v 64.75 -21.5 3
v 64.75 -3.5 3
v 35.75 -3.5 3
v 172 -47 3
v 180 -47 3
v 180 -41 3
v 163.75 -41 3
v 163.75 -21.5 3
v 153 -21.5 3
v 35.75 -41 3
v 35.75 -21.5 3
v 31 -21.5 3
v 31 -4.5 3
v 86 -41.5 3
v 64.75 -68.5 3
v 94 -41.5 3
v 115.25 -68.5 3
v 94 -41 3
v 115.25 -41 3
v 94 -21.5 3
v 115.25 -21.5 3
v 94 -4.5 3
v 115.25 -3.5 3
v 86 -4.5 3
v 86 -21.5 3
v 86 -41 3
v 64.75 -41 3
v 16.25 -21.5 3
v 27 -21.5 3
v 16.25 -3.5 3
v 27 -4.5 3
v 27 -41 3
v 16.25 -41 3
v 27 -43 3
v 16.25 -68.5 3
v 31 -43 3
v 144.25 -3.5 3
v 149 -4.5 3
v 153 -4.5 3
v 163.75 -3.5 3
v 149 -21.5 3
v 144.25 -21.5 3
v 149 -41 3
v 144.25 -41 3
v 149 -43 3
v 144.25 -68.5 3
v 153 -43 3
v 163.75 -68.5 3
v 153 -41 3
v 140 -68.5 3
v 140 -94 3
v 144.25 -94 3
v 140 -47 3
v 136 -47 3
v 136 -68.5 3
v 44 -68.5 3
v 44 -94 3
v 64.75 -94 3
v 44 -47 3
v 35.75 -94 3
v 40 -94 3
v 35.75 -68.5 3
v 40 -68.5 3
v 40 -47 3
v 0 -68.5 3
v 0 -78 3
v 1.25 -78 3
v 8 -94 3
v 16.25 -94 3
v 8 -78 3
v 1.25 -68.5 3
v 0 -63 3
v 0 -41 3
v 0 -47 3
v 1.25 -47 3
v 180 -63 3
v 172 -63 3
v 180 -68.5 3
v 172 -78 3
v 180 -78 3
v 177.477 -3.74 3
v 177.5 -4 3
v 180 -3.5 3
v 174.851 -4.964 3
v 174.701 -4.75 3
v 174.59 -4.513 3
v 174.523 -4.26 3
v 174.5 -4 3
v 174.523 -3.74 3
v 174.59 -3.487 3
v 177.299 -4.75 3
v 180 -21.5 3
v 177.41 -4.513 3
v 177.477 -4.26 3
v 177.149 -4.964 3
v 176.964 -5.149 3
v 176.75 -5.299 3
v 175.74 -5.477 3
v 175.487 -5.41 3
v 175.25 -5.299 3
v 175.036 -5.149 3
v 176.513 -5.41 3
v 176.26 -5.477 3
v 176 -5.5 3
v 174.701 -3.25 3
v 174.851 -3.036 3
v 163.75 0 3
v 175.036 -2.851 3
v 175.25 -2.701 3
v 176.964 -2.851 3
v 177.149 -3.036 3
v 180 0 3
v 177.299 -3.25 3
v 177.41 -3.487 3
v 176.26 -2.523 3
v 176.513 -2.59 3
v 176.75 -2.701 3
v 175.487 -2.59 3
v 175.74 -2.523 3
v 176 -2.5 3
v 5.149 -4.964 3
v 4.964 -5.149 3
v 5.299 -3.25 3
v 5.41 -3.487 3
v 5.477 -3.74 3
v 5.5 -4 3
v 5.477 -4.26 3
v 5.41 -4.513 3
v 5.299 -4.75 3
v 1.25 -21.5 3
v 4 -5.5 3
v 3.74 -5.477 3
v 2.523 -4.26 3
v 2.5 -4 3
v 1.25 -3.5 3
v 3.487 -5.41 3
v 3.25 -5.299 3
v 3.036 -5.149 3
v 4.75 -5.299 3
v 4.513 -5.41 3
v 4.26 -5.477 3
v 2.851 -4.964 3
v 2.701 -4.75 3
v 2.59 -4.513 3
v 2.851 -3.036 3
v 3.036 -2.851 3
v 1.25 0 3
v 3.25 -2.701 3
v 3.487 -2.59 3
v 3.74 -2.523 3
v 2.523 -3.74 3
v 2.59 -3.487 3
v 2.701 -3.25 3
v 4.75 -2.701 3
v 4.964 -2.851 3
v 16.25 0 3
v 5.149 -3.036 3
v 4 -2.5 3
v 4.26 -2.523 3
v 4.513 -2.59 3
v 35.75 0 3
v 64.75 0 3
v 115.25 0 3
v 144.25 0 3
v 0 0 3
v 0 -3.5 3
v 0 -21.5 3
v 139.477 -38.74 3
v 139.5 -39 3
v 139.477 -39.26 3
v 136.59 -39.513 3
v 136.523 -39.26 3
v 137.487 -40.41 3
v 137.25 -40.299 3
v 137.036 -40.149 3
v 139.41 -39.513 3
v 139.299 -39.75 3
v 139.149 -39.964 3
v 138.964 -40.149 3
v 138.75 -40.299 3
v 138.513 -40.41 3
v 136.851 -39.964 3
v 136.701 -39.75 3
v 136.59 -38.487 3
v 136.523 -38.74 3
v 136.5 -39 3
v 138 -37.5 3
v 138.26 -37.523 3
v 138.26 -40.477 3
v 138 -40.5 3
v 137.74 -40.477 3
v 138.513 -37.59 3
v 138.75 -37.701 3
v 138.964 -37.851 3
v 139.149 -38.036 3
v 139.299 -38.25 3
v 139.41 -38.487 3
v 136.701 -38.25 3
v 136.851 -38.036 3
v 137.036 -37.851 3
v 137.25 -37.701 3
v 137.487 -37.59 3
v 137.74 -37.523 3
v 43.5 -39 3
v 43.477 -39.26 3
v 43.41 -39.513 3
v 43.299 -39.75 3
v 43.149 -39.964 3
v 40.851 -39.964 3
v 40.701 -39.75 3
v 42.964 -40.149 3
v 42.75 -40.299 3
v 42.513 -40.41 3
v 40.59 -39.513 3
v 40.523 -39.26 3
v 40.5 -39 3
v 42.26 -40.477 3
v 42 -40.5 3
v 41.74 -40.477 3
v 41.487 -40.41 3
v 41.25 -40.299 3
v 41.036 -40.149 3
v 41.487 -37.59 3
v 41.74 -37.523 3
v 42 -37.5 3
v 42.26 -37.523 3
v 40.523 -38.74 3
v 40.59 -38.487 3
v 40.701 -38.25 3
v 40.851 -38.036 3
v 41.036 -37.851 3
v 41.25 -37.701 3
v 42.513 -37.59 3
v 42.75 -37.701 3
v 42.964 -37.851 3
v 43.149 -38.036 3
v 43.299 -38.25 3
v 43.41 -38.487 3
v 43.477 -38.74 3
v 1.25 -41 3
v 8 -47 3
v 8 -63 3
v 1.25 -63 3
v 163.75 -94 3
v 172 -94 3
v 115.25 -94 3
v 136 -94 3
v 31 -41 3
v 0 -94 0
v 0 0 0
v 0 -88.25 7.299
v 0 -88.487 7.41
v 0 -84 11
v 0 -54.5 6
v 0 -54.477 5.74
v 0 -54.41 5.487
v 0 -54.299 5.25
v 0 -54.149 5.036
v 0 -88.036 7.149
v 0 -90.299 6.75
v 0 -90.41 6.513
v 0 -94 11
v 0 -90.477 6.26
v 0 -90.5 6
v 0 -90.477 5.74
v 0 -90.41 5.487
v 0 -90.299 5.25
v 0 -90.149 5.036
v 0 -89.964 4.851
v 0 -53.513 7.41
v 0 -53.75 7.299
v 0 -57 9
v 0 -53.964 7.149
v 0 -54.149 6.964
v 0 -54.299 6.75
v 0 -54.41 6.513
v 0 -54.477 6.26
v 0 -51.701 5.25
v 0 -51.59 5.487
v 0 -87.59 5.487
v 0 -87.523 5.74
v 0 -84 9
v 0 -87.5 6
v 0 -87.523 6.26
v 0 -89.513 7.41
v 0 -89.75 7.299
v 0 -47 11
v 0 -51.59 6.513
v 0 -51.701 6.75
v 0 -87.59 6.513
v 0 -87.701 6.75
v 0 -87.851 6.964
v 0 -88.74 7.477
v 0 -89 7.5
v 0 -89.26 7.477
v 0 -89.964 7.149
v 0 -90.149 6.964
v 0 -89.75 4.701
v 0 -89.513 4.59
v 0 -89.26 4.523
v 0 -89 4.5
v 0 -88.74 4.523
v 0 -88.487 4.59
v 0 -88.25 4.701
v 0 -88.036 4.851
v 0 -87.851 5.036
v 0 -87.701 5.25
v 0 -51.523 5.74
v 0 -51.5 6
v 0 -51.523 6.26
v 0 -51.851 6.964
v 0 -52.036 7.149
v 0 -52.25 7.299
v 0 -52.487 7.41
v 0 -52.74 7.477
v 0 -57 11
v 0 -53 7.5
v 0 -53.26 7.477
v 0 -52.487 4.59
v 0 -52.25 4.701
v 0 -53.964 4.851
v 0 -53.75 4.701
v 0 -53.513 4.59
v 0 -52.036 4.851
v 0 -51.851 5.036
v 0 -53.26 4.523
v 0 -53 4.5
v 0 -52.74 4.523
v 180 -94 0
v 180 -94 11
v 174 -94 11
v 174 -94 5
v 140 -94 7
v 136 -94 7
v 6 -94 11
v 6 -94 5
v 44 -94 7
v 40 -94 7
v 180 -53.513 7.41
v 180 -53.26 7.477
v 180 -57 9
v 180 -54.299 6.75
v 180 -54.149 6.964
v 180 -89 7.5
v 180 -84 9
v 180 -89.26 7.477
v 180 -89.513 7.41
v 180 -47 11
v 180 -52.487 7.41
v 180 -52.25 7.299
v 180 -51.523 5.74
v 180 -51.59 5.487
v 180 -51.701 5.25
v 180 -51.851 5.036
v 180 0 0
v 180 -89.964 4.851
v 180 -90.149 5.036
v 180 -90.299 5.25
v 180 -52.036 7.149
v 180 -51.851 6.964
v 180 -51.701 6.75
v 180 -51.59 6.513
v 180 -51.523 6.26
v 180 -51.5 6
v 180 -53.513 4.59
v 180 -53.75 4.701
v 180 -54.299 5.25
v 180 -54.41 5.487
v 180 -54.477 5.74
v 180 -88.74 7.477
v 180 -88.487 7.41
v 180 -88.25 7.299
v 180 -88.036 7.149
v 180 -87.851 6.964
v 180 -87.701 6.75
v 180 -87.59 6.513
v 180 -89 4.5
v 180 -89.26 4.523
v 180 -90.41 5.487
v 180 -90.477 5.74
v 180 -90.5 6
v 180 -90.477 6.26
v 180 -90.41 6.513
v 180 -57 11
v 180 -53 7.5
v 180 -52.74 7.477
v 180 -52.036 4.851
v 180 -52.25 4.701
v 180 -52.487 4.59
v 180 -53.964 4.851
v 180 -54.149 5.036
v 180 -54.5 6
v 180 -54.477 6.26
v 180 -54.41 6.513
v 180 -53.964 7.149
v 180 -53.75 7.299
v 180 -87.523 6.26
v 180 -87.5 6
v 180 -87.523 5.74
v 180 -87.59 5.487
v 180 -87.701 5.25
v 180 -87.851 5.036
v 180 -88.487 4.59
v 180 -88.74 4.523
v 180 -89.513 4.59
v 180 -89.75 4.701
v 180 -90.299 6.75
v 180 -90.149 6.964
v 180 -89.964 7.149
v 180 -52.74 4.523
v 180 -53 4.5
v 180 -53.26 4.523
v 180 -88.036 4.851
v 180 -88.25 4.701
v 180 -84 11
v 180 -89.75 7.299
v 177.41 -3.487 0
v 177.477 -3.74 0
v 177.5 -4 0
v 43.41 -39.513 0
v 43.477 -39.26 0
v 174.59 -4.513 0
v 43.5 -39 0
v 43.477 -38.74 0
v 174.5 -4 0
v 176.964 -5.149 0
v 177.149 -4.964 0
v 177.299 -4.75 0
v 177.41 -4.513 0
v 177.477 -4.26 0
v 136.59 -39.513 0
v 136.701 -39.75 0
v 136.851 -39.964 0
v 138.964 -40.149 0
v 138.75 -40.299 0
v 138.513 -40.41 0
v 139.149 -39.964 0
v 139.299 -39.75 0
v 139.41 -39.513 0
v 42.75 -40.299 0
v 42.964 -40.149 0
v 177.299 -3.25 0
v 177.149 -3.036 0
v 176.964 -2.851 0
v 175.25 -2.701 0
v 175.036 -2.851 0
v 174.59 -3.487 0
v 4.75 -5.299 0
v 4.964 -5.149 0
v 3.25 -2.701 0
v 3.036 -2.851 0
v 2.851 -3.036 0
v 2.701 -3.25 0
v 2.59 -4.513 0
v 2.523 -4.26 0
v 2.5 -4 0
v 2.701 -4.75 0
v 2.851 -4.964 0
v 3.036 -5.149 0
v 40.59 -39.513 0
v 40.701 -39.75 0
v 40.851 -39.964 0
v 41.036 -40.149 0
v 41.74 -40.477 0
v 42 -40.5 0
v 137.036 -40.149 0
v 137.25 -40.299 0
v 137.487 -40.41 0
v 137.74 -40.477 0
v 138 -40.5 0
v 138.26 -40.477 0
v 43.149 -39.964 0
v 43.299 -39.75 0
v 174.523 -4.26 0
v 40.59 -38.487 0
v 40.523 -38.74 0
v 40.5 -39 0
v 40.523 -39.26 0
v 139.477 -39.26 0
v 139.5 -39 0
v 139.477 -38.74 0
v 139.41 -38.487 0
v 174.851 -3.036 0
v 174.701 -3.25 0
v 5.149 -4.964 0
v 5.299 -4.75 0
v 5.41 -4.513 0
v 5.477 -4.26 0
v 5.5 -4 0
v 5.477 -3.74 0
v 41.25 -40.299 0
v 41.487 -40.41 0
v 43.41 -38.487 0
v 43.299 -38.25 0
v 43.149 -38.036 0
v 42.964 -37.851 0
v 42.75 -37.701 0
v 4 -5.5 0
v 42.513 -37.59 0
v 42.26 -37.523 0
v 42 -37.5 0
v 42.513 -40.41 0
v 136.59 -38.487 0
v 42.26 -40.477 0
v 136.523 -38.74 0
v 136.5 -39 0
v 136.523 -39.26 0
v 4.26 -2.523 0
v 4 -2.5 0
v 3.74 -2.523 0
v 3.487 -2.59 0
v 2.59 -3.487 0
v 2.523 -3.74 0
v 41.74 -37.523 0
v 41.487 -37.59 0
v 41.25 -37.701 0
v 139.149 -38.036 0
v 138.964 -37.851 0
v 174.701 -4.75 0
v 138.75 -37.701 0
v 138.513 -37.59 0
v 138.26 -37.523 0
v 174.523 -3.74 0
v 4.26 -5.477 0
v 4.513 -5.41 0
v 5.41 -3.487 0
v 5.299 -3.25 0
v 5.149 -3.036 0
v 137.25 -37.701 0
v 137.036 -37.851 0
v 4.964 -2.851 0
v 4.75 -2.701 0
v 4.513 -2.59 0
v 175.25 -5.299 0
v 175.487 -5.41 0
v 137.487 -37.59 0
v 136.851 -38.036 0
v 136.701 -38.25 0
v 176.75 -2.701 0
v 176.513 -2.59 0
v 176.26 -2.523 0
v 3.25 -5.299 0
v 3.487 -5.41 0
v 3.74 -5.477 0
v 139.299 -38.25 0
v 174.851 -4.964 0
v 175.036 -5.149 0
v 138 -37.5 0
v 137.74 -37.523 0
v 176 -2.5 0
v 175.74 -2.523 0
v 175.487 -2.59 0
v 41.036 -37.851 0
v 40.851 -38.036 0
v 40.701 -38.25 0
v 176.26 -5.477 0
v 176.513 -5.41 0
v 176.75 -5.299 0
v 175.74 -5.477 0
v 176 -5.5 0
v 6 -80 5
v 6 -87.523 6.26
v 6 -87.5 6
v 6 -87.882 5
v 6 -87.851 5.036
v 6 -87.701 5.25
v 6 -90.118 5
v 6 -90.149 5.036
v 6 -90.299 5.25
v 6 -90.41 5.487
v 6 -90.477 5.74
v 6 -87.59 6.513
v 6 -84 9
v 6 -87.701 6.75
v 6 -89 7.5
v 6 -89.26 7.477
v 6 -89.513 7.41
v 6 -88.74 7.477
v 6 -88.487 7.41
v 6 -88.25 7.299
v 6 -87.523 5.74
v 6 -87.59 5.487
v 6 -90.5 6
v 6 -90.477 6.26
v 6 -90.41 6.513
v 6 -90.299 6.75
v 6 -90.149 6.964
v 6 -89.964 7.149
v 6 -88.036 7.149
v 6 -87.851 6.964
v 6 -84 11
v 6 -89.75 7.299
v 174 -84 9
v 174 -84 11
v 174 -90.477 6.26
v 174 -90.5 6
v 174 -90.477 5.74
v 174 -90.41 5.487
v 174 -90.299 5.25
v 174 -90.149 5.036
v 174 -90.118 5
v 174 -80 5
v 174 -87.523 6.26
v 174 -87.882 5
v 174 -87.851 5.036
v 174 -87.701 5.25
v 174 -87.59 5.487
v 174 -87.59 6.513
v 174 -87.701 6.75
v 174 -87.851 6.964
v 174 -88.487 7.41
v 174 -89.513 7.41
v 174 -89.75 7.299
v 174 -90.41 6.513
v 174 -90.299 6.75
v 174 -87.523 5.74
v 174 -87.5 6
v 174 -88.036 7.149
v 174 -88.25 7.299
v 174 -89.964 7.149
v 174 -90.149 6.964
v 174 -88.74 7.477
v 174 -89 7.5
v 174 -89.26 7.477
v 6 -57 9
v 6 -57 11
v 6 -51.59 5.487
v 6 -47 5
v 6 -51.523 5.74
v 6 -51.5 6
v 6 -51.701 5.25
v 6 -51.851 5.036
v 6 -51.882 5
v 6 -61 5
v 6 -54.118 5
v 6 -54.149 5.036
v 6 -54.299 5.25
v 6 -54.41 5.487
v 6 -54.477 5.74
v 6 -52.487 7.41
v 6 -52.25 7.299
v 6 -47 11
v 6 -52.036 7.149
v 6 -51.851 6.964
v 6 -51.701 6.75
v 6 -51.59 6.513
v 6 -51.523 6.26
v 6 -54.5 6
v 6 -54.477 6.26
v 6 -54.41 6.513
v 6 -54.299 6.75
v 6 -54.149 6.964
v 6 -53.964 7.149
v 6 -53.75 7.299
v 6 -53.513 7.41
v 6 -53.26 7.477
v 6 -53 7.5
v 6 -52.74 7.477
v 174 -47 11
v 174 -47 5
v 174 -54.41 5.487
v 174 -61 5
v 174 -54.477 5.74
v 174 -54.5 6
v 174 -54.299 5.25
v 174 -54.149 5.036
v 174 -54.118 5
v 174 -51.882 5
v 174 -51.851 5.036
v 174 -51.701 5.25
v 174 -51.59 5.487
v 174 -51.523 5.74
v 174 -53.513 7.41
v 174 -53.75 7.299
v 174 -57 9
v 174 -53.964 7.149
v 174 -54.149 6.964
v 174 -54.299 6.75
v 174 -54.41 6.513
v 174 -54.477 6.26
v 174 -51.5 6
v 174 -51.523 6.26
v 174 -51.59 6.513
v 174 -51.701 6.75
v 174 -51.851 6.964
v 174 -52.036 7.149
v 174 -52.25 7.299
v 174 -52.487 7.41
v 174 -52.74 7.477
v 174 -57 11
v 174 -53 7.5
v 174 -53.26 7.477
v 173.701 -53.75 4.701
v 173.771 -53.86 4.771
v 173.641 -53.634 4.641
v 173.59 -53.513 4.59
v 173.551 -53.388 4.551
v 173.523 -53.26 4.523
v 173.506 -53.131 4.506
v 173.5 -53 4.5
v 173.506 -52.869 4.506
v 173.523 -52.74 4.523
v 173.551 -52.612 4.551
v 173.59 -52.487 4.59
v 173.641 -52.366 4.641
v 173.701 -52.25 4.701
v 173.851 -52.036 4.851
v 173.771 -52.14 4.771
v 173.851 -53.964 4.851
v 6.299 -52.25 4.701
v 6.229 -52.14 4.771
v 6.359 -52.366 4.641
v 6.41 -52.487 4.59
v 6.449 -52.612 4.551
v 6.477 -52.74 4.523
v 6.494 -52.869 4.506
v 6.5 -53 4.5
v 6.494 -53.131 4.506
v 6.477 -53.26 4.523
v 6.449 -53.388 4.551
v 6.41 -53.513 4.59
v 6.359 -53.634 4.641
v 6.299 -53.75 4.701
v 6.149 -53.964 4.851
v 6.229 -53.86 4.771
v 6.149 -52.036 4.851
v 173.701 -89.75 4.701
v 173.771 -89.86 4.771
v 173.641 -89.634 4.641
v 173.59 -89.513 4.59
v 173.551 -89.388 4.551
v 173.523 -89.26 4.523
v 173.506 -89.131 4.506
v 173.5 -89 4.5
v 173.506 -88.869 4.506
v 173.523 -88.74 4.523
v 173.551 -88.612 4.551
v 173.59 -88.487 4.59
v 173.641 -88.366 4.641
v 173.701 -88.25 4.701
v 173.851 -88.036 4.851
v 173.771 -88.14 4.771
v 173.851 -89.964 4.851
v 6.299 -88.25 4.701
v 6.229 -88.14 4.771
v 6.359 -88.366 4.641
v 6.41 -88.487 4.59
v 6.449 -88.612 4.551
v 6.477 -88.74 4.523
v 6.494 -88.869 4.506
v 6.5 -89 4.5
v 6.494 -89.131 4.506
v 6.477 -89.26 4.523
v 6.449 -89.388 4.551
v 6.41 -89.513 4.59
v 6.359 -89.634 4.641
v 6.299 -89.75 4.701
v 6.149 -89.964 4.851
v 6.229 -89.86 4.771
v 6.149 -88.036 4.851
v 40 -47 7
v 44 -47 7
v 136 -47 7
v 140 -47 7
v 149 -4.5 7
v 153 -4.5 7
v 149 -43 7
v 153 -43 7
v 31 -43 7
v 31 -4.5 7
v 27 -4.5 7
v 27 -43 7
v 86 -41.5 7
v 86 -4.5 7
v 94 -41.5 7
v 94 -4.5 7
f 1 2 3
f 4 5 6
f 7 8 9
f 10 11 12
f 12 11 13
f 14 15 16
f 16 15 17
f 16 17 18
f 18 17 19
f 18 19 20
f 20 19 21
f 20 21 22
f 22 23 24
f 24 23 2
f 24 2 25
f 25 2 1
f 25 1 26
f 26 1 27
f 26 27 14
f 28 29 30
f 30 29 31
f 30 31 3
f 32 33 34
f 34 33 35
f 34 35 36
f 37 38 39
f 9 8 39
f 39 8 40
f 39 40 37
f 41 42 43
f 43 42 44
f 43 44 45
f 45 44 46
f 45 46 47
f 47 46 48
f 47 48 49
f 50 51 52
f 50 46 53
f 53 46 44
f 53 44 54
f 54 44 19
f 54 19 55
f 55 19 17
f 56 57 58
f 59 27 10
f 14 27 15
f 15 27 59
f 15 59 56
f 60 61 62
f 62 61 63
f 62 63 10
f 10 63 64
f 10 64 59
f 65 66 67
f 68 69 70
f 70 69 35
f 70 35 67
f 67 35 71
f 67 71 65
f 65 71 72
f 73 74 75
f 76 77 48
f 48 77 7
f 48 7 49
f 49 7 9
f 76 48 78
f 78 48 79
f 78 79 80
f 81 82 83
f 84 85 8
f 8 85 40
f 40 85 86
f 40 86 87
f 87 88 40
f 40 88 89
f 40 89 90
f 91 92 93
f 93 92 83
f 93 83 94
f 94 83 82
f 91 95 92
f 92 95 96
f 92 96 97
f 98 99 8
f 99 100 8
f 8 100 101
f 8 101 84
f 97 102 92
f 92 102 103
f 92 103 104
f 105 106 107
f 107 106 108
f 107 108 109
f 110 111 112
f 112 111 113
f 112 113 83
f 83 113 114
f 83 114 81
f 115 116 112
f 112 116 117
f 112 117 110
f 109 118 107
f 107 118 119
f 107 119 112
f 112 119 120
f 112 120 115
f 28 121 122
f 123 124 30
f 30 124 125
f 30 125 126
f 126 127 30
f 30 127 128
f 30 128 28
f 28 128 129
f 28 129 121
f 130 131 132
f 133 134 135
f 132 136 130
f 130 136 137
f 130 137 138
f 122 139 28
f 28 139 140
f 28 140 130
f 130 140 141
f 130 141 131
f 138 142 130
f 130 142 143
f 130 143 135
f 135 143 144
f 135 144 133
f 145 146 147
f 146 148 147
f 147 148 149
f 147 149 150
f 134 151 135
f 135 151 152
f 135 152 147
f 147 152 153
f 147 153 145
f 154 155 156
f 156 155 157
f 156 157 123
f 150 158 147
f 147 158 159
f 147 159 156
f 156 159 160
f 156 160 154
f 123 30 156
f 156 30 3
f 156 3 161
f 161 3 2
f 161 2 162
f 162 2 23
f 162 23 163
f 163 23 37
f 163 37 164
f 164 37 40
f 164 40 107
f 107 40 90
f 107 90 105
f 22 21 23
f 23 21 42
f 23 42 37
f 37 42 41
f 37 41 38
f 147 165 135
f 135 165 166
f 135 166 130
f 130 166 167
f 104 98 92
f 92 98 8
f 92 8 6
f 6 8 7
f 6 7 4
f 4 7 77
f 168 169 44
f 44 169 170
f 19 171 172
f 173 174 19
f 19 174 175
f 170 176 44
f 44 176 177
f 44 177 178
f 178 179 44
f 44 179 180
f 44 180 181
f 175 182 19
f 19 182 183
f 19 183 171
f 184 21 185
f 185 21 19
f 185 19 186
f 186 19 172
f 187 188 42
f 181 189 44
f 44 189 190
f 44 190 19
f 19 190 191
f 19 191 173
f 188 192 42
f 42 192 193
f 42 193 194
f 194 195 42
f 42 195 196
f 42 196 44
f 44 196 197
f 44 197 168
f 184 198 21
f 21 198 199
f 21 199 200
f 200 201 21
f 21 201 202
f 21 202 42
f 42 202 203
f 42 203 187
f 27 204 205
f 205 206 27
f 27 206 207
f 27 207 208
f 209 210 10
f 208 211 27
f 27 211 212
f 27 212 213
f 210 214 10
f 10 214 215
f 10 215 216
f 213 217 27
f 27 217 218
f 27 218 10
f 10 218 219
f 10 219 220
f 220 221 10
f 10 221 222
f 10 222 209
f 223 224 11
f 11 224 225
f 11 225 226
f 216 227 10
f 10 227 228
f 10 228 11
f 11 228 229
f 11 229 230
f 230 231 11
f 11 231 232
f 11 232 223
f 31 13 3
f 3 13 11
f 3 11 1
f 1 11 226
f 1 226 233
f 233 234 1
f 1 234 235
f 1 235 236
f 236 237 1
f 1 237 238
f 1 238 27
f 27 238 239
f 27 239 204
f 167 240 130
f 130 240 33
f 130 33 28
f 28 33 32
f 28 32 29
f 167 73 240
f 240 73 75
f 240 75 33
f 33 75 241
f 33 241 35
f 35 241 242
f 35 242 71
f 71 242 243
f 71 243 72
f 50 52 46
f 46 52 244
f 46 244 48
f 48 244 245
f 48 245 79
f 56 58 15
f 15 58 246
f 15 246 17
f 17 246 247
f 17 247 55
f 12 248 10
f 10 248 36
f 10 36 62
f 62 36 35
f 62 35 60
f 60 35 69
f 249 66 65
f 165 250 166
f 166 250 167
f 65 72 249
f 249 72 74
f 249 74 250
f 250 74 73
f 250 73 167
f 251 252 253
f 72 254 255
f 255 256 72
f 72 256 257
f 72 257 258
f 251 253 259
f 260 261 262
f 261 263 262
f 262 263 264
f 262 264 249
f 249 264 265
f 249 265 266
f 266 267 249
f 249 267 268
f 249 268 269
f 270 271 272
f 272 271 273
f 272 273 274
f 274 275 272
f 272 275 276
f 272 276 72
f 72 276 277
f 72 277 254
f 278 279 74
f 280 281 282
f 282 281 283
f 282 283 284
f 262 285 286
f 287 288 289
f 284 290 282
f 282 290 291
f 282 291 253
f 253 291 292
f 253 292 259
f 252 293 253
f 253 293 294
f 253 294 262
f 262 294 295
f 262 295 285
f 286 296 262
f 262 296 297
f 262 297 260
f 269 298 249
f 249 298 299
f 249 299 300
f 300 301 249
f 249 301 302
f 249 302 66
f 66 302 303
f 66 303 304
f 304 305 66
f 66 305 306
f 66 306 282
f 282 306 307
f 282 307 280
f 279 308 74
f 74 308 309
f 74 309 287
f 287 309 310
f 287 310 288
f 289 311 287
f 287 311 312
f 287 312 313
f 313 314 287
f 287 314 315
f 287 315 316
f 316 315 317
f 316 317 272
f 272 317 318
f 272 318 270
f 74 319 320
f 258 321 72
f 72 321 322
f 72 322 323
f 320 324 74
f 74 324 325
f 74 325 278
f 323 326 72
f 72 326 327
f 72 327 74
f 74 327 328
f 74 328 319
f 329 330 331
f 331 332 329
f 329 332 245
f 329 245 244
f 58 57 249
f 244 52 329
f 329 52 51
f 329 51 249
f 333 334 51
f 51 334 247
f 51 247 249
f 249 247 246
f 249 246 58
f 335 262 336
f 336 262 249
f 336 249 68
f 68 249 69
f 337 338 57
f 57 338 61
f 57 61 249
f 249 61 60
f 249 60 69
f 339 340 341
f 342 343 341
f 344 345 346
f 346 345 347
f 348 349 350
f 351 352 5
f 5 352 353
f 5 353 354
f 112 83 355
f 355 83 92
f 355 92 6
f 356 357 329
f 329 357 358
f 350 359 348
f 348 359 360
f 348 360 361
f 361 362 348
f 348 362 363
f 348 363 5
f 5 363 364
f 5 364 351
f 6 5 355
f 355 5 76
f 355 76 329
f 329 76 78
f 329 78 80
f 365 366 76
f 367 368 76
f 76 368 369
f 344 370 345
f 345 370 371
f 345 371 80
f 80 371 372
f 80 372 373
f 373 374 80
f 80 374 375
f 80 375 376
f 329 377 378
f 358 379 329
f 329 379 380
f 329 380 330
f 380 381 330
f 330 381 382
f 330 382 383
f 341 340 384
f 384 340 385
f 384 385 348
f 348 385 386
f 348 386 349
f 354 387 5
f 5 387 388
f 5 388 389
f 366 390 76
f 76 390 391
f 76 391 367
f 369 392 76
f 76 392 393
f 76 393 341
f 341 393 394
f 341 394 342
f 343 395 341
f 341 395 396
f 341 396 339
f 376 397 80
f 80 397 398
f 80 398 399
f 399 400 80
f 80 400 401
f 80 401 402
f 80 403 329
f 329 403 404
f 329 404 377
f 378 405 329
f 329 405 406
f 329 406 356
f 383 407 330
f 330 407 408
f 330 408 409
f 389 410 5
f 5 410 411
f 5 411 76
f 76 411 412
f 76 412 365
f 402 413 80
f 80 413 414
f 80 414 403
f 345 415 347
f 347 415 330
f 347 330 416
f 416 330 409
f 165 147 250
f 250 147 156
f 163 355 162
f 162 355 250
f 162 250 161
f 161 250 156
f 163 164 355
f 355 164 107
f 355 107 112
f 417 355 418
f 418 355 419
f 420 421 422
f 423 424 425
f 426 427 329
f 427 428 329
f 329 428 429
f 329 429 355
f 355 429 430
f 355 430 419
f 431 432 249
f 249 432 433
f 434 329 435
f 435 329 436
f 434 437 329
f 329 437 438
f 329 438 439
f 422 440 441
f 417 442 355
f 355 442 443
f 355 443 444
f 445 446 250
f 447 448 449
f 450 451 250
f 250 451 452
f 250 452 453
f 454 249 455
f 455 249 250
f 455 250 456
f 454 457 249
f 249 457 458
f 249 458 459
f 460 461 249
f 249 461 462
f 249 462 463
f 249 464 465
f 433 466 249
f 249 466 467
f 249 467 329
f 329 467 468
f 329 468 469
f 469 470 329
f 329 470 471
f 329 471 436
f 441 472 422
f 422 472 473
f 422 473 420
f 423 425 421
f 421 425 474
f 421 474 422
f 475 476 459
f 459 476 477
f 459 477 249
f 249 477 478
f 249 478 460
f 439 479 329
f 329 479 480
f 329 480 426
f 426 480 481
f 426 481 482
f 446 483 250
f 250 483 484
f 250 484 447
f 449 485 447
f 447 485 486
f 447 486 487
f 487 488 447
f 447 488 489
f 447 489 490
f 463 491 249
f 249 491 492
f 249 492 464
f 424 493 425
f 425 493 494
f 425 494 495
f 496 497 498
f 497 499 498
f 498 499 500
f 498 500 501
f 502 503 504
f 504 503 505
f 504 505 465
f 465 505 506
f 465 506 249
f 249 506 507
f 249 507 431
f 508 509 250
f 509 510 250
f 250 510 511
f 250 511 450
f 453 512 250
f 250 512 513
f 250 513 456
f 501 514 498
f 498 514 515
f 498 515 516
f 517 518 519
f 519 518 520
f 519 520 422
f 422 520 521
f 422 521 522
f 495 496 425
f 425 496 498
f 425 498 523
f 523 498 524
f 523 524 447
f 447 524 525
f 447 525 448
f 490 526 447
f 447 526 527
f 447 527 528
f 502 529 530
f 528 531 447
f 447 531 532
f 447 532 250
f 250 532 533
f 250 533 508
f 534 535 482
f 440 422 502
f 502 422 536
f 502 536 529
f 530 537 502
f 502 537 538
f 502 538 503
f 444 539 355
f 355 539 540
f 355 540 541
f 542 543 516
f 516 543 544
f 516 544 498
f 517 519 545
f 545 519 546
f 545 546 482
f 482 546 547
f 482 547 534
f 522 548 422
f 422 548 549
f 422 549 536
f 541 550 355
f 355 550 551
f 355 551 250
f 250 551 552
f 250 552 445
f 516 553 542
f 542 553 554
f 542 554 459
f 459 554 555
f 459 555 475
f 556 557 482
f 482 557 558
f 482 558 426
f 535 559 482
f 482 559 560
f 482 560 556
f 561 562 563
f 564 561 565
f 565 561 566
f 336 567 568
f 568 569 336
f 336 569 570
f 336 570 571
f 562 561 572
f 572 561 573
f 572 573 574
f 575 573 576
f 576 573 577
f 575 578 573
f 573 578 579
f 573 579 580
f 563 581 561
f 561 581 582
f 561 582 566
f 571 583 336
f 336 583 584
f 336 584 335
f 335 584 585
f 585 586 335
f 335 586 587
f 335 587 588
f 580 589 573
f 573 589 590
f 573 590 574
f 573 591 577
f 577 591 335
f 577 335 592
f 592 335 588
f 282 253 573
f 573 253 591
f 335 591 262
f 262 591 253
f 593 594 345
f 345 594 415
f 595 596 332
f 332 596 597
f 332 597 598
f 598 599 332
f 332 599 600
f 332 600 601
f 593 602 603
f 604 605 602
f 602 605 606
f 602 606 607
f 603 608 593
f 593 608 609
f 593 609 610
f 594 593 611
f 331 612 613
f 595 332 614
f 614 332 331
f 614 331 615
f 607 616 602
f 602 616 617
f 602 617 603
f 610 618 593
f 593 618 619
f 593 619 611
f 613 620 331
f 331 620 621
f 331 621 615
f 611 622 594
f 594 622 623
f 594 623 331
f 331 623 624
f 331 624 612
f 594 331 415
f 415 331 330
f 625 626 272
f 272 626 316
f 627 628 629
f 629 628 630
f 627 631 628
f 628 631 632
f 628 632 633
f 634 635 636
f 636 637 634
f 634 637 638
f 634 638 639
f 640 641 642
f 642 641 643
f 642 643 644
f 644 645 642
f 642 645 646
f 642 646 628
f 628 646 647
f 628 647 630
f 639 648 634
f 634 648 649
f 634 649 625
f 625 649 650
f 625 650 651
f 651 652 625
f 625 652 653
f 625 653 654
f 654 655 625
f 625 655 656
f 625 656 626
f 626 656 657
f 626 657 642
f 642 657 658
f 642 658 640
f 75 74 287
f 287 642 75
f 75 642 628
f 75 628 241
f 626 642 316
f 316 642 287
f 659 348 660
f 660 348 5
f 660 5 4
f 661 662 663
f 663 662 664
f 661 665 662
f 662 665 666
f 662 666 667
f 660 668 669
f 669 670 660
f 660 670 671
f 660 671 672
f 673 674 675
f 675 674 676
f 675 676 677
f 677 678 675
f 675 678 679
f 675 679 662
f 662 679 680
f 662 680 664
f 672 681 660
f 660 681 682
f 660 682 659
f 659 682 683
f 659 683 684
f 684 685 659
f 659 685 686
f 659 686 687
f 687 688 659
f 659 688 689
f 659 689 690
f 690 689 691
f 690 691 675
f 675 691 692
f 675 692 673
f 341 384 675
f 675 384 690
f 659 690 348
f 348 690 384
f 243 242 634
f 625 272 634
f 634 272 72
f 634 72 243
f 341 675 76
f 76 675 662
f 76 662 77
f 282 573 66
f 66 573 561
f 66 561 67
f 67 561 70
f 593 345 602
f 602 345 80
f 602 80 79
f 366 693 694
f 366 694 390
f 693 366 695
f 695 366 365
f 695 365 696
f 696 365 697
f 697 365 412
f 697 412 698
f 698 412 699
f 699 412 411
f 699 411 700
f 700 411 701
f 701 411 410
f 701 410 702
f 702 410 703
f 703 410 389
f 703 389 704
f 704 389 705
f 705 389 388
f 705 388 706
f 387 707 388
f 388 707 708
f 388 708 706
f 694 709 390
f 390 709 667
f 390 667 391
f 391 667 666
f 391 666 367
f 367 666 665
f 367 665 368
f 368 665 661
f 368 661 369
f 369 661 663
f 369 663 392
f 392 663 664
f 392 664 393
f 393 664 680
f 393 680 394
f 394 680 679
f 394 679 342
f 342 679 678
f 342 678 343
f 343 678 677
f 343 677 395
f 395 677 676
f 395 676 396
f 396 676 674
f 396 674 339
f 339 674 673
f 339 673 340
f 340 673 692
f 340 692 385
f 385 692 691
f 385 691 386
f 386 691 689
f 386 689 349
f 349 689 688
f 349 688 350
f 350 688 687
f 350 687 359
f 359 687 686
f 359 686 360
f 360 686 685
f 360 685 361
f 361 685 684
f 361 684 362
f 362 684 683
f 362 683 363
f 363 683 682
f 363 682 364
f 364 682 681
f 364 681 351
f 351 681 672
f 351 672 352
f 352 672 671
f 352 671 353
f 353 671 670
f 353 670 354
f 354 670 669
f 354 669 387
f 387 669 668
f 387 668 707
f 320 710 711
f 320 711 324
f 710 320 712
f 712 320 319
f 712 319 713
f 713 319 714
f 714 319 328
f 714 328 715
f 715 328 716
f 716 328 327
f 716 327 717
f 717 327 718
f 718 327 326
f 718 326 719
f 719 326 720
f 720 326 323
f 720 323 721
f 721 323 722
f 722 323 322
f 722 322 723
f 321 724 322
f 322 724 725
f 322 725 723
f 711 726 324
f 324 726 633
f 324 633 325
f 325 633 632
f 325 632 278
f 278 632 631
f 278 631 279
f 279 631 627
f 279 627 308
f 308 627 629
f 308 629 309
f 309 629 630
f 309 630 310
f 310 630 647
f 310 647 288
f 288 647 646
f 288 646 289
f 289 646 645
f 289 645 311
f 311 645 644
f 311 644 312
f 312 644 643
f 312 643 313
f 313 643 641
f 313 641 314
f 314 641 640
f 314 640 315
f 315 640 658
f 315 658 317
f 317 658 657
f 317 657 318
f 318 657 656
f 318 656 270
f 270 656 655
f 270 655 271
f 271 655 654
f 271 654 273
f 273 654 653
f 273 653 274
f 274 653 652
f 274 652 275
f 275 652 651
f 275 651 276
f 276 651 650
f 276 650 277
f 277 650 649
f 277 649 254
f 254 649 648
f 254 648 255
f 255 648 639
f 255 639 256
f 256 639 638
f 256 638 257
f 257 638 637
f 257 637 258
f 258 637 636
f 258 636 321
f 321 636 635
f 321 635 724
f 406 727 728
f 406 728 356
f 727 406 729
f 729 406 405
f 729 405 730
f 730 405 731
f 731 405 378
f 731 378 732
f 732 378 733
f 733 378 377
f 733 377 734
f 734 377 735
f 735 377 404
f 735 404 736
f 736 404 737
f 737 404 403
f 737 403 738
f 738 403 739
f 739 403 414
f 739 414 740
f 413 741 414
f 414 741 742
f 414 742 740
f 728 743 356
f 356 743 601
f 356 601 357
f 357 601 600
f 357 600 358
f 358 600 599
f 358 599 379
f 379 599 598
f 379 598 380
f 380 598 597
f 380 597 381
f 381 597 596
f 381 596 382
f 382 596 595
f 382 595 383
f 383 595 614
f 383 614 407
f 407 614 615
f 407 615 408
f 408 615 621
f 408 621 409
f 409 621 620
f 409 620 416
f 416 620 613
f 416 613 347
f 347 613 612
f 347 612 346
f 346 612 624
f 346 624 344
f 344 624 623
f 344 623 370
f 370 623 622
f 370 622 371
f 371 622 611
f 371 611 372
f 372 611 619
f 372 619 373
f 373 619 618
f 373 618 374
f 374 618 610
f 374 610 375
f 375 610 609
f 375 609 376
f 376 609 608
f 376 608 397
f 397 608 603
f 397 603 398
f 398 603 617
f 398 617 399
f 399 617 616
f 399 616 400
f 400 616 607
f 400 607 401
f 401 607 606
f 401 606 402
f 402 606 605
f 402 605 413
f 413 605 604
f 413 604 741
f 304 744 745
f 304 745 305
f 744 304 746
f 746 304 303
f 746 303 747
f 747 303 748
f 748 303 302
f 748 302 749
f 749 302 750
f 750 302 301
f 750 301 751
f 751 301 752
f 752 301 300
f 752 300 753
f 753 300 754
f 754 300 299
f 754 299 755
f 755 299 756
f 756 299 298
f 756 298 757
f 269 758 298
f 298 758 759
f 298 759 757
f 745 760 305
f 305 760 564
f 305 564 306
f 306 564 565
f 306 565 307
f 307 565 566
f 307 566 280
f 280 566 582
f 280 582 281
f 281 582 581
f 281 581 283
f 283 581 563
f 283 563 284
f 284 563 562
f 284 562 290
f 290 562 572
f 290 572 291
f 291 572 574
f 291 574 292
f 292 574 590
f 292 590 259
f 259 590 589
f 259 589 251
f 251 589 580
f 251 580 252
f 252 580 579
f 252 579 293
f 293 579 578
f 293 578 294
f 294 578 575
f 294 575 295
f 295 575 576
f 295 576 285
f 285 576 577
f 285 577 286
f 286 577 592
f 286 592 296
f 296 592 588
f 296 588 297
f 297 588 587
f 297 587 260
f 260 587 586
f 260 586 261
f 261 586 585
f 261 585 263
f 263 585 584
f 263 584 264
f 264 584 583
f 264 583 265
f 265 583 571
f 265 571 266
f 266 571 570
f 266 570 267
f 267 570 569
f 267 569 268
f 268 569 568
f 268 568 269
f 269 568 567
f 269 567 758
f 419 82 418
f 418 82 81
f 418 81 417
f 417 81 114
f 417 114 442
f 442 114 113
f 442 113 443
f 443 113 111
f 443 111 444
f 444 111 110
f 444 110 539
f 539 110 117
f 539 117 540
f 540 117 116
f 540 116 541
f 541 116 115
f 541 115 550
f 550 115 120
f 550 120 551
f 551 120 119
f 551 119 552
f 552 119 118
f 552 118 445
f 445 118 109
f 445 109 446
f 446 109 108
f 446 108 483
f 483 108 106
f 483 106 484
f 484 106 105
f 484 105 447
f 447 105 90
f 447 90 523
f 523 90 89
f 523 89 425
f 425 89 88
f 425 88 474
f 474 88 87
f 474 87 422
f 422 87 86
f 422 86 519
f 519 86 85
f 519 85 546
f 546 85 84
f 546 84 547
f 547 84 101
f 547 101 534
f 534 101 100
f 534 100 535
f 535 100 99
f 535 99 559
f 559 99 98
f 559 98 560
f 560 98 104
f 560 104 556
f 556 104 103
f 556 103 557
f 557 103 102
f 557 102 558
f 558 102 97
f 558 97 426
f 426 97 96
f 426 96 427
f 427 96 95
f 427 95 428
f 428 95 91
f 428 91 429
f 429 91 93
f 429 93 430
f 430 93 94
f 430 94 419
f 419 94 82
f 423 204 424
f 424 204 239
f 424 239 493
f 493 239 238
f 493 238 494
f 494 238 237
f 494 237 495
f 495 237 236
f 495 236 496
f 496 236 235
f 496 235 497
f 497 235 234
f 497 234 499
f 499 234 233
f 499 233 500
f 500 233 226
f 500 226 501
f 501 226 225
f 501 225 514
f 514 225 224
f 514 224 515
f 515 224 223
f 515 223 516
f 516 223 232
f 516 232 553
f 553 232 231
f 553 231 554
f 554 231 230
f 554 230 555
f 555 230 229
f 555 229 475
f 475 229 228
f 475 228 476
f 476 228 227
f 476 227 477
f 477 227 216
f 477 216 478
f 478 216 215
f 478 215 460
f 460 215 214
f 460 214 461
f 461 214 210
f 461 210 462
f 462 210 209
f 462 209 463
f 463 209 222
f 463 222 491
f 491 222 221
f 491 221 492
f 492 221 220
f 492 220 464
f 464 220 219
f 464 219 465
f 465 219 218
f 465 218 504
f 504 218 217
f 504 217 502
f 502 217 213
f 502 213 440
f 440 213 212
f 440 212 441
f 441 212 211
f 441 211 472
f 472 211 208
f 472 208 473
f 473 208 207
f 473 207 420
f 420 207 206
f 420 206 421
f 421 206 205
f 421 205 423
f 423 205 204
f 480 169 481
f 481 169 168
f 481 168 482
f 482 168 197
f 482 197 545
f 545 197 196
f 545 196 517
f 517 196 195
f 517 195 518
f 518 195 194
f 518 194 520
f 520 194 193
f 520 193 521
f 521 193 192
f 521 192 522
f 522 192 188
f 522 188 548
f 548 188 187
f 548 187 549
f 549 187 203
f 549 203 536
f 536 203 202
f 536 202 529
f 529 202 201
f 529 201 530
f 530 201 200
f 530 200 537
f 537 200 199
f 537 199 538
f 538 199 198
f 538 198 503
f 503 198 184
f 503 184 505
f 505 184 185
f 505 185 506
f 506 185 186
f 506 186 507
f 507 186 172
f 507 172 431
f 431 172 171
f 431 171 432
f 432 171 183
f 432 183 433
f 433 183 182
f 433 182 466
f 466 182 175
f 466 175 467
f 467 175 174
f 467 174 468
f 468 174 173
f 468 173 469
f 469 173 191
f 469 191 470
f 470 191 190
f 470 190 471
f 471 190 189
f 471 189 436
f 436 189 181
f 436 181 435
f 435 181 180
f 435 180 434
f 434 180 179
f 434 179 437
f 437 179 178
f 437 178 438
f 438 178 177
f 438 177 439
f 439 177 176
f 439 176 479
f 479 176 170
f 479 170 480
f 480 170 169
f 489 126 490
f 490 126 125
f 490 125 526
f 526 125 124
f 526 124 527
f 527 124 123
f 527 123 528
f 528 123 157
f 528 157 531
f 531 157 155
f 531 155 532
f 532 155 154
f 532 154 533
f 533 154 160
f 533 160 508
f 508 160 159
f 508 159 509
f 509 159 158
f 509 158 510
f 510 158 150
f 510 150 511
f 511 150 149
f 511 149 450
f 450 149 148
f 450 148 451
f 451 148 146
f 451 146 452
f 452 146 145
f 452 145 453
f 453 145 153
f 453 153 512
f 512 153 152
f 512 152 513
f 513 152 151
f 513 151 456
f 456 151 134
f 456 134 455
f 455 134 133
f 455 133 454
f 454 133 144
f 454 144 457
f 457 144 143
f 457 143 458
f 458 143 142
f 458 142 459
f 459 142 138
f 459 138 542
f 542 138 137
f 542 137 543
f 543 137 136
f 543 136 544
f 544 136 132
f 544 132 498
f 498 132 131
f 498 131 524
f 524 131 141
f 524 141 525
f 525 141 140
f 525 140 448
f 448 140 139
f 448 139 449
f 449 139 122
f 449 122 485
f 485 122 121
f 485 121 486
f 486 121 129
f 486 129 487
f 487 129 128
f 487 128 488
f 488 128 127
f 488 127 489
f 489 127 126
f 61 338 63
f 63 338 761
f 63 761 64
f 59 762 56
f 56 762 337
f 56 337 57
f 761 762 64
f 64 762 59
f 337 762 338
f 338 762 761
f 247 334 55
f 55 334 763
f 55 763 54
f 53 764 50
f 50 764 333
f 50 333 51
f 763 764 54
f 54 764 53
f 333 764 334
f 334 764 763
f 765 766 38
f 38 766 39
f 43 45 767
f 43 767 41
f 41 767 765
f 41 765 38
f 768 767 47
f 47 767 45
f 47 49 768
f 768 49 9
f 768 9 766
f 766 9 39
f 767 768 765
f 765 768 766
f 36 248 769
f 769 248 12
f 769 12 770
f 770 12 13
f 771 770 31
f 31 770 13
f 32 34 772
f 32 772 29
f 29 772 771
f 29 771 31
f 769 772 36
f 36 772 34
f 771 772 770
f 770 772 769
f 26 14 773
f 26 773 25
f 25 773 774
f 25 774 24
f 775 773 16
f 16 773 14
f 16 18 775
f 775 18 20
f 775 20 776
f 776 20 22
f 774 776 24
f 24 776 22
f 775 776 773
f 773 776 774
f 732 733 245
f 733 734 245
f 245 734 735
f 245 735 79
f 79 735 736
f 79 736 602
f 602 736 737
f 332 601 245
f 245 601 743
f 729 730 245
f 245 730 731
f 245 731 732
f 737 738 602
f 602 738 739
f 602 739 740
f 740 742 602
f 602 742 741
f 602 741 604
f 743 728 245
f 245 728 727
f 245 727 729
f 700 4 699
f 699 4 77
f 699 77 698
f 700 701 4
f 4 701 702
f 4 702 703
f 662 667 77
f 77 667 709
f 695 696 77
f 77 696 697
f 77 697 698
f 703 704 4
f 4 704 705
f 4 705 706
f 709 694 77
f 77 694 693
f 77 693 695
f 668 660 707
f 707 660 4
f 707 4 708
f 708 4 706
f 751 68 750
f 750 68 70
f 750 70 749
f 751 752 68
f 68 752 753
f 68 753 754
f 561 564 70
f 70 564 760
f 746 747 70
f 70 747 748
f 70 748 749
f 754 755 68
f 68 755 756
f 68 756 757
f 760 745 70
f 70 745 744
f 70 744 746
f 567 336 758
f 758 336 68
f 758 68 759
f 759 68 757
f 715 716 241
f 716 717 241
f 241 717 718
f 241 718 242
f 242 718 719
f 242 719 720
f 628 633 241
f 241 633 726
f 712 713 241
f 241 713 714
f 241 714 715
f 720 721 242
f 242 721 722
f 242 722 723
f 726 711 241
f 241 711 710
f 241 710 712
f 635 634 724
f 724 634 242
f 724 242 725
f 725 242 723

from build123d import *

# Parameters (mm, degrees)
SKETCH_1_W          = 180
SKETCH_1_H          = 94
EXTRUDE_1_DEPTH     = 3
SKETCH_2_W          = 6
SKETCH_2_H          = 10
EXTRUDE_2_DEPTH     = 8
CHAMFER_2_SIZE      = 6
CHAMFER_1_SIZE      = 6
SKETCH_3_R          = 1.5
CUT_EXTRUDE_1_DEPTH = 204.364205307
SKETCH_4_R          = 1.5
CUT_EXTRUDE_2_DEPTH = 204.224014329
SKETCH_5_W          = 4
SKETCH_5_H          = 47
SKETCH_5_H_2        = 38.5
SKETCH_5_W_2        = 8
SKETCH_5_H_3        = 37
EXTRUDE_3_DEPTH     = 4
CHAMFER_3_SIZE      = 2


with BuildPart() as part:
    # Эскиз1 → Бобышка-Вытянуть1 (new body)
    with BuildSketch(Plane.XY):
        with Locations((90, -47)):
            Rectangle(SKETCH_1_W, SKETCH_1_H)
    extrude(amount=EXTRUDE_1_DEPTH)

    # Эскиз2 → Бобышка-Вытянуть2 (add)
    with BuildSketch(Plane.XY.offset(3)):
        with Locations((3, -89)):
            Rectangle(SKETCH_2_W, SKETCH_2_H)
        with Locations((177, -89)):
            Rectangle(SKETCH_2_W, SKETCH_2_H)
        with Locations((3, -52)):
            Rectangle(SKETCH_2_W, SKETCH_2_H)
        with Locations((177, -52)):
            Rectangle(SKETCH_2_W, SKETCH_2_H)
    extrude(amount=EXTRUDE_2_DEPTH)

    # Фаска2
    chamfer_2_edges = [part.edges().sort_by_distance(p)[0] for p in [
        (3, -57, 3),
        (177, -57, 3),
    ]]
    chamfer(chamfer_2_edges, length=CHAMFER_2_SIZE)

    # Фаска1
    chamfer_1_edges = [part.edges().sort_by_distance(p)[0] for p in [
        (3, -84, 3),
        (177, -84, 3),
    ]]
    chamfer(chamfer_1_edges, length=CHAMFER_1_SIZE)

    # Эскиз3 → Вырез-Вытянуть1 (cut, through all)
    with BuildSketch(Plane(origin=(180, 0, 0), x_dir=(0, 0, -1), z_dir=(1, 0, 0))):
        with Locations((-6, -89)):
            Circle(SKETCH_3_R)
        with Locations((-6, -53)):
            Circle(SKETCH_3_R)
    extrude(amount=-CUT_EXTRUDE_1_DEPTH, mode=Mode.SUBTRACT)

    # Эскиз4 → Вырез-Вытянуть2 (cut, through all)
    with BuildSketch(Plane.XY.offset(3)):
        with Locations((4, -4)):
            Circle(SKETCH_4_R)
        with Locations((176, -4)):
            Circle(SKETCH_4_R)
        with Locations((42, -39)):
            Circle(SKETCH_4_R)
        with Locations((138, -39)):
            Circle(SKETCH_4_R)
    extrude(amount=-CUT_EXTRUDE_2_DEPTH, mode=Mode.SUBTRACT)

    # Эскиз5 → Бобышка-Вытянуть3 (add)
    with BuildSketch(Plane.XY.offset(3)):
        with Locations((42, -70.5)):
            Rectangle(SKETCH_5_W, SKETCH_5_H)
        with Locations((138, -70.5)):
            Rectangle(SKETCH_5_W, SKETCH_5_H)
        with Locations((29, -23.75)):
            Rectangle(SKETCH_5_W, SKETCH_5_H_2)
        with Locations((151, -23.75)):
            Rectangle(SKETCH_5_W, SKETCH_5_H_2)
        with Locations((90, -23)):
            Rectangle(SKETCH_5_W_2, SKETCH_5_H_3)
    extrude(amount=EXTRUDE_3_DEPTH)

    # Фаска3
    # the kernel refuses this chamfer: 2 mm, written as the material it adds along each edge
    with BuildSketch(Plane(origin=(6, -72.856634024, 3), x_dir=(0.9996219169112968, 0, -0.02749587661058627), z_dir=(0, -1, 0))) as chamfer_3_piece_1_section:
        Polygon((CHAMFER_3_SIZE * 0.999621916911, CHAMFER_3_SIZE * 0.0274958766106), (-CHAMFER_3_SIZE * 0.0274958766106, CHAMFER_3_SIZE * 0.999621916911), (0, 0), align=None)
    chamfer_3_piece_1 = extrude(amount=21.143365976, mode=Mode.PRIVATE)
    chamfer_3_piece_1 = split(chamfer_3_piece_1, bisect_by=Plane(origin=(6.672348165, -82.469530213, 7.469530213), z_dir=(0, -0.7071067811865476, -0.7071067811865476)), keep=Keep.TOP, mode=Mode.PRIVATE)
    chamfer_3_piece_1 = chamfer_3_piece_1 - Plane(origin=(6.672348165, -89, 6), x_dir=(0, 0, -1), z_dir=(1, 0, 0)) * Cylinder(1.5, 51, mode=Mode.PRIVATE)
    add(chamfer_3_piece_1)
    with BuildSketch(Plane(origin=(174, -94, 3), x_dir=(-0.9996219169112968, 0, -0.02749587661058639), z_dir=(0, 1, 0))) as chamfer_3_piece_2_section:
        Polygon((CHAMFER_3_SIZE * 0.999621916911, CHAMFER_3_SIZE * 0.0274958766106), (-CHAMFER_3_SIZE * 0.0274958766106, CHAMFER_3_SIZE * 0.999621916911), (0, 0), align=None)
    chamfer_3_piece_2 = extrude(amount=21.143365976, mode=Mode.PRIVATE)
    chamfer_3_piece_2 = split(chamfer_3_piece_2, bisect_by=Plane(origin=(173.327651835, -82.469530213, 7.469530213), z_dir=(0, -0.7071067811865476, -0.7071067811865476)), keep=Keep.TOP, mode=Mode.PRIVATE)
    chamfer_3_piece_2 = chamfer_3_piece_2 - Plane(origin=(173.327651835, -89, 6), x_dir=(0, 0, -1), z_dir=(1, 0, 0)) * Cylinder(1.5, 51, mode=Mode.PRIVATE)
    add(chamfer_3_piece_2)
    with BuildSketch(Plane(origin=(6, -47, 3), x_dir=(0.9996219169112968, 0, -0.02749587661058627), z_dir=(0, -1, 0))) as chamfer_3_piece_3_section:
        Polygon((CHAMFER_3_SIZE * 0.999621916911, CHAMFER_3_SIZE * 0.0274958766106), (-CHAMFER_3_SIZE * 0.0274958766106, CHAMFER_3_SIZE * 0.999621916911), (0, 0), align=None)
    chamfer_3_piece_3 = extrude(amount=21.143365976, mode=Mode.PRIVATE)
    chamfer_3_piece_3 = split(chamfer_3_piece_3, bisect_by=Plane(origin=(6.672348166, -58.527104034, 7.472895966), z_dir=(0, 0.7071067811865476, -0.7071067811865476)), keep=Keep.TOP, mode=Mode.PRIVATE)
    chamfer_3_piece_3 = chamfer_3_piece_3 - Plane(origin=(6.672348166, -53, 6), x_dir=(0, 0, -1), z_dir=(1, 0, 0)) * Cylinder(1.5, 51, mode=Mode.PRIVATE)
    add(chamfer_3_piece_3)
    with BuildSketch(Plane(origin=(174, -68.143365976, 3), x_dir=(-0.9996219169112968, 0, -0.02749587661058639), z_dir=(0, 1, 0))) as chamfer_3_piece_4_section:
        Polygon((CHAMFER_3_SIZE * 0.999621916911, CHAMFER_3_SIZE * 0.0274958766106), (-CHAMFER_3_SIZE * 0.0274958766106, CHAMFER_3_SIZE * 0.999621916911), (0, 0), align=None)
    chamfer_3_piece_4 = extrude(amount=21.143365976, mode=Mode.PRIVATE)
    chamfer_3_piece_4 = split(chamfer_3_piece_4, bisect_by=Plane(origin=(173.327651834, -58.527104034, 7.472895966), z_dir=(0, 0.7071067811865476, -0.7071067811865476)), keep=Keep.TOP, mode=Mode.PRIVATE)
    chamfer_3_piece_4 = chamfer_3_piece_4 - Plane(origin=(173.327651834, -53, 6), x_dir=(0, 0, -1), z_dir=(1, 0, 0)) * Cylinder(1.5, 51, mode=Mode.PRIVATE)
    add(chamfer_3_piece_4)


solid = part.part
